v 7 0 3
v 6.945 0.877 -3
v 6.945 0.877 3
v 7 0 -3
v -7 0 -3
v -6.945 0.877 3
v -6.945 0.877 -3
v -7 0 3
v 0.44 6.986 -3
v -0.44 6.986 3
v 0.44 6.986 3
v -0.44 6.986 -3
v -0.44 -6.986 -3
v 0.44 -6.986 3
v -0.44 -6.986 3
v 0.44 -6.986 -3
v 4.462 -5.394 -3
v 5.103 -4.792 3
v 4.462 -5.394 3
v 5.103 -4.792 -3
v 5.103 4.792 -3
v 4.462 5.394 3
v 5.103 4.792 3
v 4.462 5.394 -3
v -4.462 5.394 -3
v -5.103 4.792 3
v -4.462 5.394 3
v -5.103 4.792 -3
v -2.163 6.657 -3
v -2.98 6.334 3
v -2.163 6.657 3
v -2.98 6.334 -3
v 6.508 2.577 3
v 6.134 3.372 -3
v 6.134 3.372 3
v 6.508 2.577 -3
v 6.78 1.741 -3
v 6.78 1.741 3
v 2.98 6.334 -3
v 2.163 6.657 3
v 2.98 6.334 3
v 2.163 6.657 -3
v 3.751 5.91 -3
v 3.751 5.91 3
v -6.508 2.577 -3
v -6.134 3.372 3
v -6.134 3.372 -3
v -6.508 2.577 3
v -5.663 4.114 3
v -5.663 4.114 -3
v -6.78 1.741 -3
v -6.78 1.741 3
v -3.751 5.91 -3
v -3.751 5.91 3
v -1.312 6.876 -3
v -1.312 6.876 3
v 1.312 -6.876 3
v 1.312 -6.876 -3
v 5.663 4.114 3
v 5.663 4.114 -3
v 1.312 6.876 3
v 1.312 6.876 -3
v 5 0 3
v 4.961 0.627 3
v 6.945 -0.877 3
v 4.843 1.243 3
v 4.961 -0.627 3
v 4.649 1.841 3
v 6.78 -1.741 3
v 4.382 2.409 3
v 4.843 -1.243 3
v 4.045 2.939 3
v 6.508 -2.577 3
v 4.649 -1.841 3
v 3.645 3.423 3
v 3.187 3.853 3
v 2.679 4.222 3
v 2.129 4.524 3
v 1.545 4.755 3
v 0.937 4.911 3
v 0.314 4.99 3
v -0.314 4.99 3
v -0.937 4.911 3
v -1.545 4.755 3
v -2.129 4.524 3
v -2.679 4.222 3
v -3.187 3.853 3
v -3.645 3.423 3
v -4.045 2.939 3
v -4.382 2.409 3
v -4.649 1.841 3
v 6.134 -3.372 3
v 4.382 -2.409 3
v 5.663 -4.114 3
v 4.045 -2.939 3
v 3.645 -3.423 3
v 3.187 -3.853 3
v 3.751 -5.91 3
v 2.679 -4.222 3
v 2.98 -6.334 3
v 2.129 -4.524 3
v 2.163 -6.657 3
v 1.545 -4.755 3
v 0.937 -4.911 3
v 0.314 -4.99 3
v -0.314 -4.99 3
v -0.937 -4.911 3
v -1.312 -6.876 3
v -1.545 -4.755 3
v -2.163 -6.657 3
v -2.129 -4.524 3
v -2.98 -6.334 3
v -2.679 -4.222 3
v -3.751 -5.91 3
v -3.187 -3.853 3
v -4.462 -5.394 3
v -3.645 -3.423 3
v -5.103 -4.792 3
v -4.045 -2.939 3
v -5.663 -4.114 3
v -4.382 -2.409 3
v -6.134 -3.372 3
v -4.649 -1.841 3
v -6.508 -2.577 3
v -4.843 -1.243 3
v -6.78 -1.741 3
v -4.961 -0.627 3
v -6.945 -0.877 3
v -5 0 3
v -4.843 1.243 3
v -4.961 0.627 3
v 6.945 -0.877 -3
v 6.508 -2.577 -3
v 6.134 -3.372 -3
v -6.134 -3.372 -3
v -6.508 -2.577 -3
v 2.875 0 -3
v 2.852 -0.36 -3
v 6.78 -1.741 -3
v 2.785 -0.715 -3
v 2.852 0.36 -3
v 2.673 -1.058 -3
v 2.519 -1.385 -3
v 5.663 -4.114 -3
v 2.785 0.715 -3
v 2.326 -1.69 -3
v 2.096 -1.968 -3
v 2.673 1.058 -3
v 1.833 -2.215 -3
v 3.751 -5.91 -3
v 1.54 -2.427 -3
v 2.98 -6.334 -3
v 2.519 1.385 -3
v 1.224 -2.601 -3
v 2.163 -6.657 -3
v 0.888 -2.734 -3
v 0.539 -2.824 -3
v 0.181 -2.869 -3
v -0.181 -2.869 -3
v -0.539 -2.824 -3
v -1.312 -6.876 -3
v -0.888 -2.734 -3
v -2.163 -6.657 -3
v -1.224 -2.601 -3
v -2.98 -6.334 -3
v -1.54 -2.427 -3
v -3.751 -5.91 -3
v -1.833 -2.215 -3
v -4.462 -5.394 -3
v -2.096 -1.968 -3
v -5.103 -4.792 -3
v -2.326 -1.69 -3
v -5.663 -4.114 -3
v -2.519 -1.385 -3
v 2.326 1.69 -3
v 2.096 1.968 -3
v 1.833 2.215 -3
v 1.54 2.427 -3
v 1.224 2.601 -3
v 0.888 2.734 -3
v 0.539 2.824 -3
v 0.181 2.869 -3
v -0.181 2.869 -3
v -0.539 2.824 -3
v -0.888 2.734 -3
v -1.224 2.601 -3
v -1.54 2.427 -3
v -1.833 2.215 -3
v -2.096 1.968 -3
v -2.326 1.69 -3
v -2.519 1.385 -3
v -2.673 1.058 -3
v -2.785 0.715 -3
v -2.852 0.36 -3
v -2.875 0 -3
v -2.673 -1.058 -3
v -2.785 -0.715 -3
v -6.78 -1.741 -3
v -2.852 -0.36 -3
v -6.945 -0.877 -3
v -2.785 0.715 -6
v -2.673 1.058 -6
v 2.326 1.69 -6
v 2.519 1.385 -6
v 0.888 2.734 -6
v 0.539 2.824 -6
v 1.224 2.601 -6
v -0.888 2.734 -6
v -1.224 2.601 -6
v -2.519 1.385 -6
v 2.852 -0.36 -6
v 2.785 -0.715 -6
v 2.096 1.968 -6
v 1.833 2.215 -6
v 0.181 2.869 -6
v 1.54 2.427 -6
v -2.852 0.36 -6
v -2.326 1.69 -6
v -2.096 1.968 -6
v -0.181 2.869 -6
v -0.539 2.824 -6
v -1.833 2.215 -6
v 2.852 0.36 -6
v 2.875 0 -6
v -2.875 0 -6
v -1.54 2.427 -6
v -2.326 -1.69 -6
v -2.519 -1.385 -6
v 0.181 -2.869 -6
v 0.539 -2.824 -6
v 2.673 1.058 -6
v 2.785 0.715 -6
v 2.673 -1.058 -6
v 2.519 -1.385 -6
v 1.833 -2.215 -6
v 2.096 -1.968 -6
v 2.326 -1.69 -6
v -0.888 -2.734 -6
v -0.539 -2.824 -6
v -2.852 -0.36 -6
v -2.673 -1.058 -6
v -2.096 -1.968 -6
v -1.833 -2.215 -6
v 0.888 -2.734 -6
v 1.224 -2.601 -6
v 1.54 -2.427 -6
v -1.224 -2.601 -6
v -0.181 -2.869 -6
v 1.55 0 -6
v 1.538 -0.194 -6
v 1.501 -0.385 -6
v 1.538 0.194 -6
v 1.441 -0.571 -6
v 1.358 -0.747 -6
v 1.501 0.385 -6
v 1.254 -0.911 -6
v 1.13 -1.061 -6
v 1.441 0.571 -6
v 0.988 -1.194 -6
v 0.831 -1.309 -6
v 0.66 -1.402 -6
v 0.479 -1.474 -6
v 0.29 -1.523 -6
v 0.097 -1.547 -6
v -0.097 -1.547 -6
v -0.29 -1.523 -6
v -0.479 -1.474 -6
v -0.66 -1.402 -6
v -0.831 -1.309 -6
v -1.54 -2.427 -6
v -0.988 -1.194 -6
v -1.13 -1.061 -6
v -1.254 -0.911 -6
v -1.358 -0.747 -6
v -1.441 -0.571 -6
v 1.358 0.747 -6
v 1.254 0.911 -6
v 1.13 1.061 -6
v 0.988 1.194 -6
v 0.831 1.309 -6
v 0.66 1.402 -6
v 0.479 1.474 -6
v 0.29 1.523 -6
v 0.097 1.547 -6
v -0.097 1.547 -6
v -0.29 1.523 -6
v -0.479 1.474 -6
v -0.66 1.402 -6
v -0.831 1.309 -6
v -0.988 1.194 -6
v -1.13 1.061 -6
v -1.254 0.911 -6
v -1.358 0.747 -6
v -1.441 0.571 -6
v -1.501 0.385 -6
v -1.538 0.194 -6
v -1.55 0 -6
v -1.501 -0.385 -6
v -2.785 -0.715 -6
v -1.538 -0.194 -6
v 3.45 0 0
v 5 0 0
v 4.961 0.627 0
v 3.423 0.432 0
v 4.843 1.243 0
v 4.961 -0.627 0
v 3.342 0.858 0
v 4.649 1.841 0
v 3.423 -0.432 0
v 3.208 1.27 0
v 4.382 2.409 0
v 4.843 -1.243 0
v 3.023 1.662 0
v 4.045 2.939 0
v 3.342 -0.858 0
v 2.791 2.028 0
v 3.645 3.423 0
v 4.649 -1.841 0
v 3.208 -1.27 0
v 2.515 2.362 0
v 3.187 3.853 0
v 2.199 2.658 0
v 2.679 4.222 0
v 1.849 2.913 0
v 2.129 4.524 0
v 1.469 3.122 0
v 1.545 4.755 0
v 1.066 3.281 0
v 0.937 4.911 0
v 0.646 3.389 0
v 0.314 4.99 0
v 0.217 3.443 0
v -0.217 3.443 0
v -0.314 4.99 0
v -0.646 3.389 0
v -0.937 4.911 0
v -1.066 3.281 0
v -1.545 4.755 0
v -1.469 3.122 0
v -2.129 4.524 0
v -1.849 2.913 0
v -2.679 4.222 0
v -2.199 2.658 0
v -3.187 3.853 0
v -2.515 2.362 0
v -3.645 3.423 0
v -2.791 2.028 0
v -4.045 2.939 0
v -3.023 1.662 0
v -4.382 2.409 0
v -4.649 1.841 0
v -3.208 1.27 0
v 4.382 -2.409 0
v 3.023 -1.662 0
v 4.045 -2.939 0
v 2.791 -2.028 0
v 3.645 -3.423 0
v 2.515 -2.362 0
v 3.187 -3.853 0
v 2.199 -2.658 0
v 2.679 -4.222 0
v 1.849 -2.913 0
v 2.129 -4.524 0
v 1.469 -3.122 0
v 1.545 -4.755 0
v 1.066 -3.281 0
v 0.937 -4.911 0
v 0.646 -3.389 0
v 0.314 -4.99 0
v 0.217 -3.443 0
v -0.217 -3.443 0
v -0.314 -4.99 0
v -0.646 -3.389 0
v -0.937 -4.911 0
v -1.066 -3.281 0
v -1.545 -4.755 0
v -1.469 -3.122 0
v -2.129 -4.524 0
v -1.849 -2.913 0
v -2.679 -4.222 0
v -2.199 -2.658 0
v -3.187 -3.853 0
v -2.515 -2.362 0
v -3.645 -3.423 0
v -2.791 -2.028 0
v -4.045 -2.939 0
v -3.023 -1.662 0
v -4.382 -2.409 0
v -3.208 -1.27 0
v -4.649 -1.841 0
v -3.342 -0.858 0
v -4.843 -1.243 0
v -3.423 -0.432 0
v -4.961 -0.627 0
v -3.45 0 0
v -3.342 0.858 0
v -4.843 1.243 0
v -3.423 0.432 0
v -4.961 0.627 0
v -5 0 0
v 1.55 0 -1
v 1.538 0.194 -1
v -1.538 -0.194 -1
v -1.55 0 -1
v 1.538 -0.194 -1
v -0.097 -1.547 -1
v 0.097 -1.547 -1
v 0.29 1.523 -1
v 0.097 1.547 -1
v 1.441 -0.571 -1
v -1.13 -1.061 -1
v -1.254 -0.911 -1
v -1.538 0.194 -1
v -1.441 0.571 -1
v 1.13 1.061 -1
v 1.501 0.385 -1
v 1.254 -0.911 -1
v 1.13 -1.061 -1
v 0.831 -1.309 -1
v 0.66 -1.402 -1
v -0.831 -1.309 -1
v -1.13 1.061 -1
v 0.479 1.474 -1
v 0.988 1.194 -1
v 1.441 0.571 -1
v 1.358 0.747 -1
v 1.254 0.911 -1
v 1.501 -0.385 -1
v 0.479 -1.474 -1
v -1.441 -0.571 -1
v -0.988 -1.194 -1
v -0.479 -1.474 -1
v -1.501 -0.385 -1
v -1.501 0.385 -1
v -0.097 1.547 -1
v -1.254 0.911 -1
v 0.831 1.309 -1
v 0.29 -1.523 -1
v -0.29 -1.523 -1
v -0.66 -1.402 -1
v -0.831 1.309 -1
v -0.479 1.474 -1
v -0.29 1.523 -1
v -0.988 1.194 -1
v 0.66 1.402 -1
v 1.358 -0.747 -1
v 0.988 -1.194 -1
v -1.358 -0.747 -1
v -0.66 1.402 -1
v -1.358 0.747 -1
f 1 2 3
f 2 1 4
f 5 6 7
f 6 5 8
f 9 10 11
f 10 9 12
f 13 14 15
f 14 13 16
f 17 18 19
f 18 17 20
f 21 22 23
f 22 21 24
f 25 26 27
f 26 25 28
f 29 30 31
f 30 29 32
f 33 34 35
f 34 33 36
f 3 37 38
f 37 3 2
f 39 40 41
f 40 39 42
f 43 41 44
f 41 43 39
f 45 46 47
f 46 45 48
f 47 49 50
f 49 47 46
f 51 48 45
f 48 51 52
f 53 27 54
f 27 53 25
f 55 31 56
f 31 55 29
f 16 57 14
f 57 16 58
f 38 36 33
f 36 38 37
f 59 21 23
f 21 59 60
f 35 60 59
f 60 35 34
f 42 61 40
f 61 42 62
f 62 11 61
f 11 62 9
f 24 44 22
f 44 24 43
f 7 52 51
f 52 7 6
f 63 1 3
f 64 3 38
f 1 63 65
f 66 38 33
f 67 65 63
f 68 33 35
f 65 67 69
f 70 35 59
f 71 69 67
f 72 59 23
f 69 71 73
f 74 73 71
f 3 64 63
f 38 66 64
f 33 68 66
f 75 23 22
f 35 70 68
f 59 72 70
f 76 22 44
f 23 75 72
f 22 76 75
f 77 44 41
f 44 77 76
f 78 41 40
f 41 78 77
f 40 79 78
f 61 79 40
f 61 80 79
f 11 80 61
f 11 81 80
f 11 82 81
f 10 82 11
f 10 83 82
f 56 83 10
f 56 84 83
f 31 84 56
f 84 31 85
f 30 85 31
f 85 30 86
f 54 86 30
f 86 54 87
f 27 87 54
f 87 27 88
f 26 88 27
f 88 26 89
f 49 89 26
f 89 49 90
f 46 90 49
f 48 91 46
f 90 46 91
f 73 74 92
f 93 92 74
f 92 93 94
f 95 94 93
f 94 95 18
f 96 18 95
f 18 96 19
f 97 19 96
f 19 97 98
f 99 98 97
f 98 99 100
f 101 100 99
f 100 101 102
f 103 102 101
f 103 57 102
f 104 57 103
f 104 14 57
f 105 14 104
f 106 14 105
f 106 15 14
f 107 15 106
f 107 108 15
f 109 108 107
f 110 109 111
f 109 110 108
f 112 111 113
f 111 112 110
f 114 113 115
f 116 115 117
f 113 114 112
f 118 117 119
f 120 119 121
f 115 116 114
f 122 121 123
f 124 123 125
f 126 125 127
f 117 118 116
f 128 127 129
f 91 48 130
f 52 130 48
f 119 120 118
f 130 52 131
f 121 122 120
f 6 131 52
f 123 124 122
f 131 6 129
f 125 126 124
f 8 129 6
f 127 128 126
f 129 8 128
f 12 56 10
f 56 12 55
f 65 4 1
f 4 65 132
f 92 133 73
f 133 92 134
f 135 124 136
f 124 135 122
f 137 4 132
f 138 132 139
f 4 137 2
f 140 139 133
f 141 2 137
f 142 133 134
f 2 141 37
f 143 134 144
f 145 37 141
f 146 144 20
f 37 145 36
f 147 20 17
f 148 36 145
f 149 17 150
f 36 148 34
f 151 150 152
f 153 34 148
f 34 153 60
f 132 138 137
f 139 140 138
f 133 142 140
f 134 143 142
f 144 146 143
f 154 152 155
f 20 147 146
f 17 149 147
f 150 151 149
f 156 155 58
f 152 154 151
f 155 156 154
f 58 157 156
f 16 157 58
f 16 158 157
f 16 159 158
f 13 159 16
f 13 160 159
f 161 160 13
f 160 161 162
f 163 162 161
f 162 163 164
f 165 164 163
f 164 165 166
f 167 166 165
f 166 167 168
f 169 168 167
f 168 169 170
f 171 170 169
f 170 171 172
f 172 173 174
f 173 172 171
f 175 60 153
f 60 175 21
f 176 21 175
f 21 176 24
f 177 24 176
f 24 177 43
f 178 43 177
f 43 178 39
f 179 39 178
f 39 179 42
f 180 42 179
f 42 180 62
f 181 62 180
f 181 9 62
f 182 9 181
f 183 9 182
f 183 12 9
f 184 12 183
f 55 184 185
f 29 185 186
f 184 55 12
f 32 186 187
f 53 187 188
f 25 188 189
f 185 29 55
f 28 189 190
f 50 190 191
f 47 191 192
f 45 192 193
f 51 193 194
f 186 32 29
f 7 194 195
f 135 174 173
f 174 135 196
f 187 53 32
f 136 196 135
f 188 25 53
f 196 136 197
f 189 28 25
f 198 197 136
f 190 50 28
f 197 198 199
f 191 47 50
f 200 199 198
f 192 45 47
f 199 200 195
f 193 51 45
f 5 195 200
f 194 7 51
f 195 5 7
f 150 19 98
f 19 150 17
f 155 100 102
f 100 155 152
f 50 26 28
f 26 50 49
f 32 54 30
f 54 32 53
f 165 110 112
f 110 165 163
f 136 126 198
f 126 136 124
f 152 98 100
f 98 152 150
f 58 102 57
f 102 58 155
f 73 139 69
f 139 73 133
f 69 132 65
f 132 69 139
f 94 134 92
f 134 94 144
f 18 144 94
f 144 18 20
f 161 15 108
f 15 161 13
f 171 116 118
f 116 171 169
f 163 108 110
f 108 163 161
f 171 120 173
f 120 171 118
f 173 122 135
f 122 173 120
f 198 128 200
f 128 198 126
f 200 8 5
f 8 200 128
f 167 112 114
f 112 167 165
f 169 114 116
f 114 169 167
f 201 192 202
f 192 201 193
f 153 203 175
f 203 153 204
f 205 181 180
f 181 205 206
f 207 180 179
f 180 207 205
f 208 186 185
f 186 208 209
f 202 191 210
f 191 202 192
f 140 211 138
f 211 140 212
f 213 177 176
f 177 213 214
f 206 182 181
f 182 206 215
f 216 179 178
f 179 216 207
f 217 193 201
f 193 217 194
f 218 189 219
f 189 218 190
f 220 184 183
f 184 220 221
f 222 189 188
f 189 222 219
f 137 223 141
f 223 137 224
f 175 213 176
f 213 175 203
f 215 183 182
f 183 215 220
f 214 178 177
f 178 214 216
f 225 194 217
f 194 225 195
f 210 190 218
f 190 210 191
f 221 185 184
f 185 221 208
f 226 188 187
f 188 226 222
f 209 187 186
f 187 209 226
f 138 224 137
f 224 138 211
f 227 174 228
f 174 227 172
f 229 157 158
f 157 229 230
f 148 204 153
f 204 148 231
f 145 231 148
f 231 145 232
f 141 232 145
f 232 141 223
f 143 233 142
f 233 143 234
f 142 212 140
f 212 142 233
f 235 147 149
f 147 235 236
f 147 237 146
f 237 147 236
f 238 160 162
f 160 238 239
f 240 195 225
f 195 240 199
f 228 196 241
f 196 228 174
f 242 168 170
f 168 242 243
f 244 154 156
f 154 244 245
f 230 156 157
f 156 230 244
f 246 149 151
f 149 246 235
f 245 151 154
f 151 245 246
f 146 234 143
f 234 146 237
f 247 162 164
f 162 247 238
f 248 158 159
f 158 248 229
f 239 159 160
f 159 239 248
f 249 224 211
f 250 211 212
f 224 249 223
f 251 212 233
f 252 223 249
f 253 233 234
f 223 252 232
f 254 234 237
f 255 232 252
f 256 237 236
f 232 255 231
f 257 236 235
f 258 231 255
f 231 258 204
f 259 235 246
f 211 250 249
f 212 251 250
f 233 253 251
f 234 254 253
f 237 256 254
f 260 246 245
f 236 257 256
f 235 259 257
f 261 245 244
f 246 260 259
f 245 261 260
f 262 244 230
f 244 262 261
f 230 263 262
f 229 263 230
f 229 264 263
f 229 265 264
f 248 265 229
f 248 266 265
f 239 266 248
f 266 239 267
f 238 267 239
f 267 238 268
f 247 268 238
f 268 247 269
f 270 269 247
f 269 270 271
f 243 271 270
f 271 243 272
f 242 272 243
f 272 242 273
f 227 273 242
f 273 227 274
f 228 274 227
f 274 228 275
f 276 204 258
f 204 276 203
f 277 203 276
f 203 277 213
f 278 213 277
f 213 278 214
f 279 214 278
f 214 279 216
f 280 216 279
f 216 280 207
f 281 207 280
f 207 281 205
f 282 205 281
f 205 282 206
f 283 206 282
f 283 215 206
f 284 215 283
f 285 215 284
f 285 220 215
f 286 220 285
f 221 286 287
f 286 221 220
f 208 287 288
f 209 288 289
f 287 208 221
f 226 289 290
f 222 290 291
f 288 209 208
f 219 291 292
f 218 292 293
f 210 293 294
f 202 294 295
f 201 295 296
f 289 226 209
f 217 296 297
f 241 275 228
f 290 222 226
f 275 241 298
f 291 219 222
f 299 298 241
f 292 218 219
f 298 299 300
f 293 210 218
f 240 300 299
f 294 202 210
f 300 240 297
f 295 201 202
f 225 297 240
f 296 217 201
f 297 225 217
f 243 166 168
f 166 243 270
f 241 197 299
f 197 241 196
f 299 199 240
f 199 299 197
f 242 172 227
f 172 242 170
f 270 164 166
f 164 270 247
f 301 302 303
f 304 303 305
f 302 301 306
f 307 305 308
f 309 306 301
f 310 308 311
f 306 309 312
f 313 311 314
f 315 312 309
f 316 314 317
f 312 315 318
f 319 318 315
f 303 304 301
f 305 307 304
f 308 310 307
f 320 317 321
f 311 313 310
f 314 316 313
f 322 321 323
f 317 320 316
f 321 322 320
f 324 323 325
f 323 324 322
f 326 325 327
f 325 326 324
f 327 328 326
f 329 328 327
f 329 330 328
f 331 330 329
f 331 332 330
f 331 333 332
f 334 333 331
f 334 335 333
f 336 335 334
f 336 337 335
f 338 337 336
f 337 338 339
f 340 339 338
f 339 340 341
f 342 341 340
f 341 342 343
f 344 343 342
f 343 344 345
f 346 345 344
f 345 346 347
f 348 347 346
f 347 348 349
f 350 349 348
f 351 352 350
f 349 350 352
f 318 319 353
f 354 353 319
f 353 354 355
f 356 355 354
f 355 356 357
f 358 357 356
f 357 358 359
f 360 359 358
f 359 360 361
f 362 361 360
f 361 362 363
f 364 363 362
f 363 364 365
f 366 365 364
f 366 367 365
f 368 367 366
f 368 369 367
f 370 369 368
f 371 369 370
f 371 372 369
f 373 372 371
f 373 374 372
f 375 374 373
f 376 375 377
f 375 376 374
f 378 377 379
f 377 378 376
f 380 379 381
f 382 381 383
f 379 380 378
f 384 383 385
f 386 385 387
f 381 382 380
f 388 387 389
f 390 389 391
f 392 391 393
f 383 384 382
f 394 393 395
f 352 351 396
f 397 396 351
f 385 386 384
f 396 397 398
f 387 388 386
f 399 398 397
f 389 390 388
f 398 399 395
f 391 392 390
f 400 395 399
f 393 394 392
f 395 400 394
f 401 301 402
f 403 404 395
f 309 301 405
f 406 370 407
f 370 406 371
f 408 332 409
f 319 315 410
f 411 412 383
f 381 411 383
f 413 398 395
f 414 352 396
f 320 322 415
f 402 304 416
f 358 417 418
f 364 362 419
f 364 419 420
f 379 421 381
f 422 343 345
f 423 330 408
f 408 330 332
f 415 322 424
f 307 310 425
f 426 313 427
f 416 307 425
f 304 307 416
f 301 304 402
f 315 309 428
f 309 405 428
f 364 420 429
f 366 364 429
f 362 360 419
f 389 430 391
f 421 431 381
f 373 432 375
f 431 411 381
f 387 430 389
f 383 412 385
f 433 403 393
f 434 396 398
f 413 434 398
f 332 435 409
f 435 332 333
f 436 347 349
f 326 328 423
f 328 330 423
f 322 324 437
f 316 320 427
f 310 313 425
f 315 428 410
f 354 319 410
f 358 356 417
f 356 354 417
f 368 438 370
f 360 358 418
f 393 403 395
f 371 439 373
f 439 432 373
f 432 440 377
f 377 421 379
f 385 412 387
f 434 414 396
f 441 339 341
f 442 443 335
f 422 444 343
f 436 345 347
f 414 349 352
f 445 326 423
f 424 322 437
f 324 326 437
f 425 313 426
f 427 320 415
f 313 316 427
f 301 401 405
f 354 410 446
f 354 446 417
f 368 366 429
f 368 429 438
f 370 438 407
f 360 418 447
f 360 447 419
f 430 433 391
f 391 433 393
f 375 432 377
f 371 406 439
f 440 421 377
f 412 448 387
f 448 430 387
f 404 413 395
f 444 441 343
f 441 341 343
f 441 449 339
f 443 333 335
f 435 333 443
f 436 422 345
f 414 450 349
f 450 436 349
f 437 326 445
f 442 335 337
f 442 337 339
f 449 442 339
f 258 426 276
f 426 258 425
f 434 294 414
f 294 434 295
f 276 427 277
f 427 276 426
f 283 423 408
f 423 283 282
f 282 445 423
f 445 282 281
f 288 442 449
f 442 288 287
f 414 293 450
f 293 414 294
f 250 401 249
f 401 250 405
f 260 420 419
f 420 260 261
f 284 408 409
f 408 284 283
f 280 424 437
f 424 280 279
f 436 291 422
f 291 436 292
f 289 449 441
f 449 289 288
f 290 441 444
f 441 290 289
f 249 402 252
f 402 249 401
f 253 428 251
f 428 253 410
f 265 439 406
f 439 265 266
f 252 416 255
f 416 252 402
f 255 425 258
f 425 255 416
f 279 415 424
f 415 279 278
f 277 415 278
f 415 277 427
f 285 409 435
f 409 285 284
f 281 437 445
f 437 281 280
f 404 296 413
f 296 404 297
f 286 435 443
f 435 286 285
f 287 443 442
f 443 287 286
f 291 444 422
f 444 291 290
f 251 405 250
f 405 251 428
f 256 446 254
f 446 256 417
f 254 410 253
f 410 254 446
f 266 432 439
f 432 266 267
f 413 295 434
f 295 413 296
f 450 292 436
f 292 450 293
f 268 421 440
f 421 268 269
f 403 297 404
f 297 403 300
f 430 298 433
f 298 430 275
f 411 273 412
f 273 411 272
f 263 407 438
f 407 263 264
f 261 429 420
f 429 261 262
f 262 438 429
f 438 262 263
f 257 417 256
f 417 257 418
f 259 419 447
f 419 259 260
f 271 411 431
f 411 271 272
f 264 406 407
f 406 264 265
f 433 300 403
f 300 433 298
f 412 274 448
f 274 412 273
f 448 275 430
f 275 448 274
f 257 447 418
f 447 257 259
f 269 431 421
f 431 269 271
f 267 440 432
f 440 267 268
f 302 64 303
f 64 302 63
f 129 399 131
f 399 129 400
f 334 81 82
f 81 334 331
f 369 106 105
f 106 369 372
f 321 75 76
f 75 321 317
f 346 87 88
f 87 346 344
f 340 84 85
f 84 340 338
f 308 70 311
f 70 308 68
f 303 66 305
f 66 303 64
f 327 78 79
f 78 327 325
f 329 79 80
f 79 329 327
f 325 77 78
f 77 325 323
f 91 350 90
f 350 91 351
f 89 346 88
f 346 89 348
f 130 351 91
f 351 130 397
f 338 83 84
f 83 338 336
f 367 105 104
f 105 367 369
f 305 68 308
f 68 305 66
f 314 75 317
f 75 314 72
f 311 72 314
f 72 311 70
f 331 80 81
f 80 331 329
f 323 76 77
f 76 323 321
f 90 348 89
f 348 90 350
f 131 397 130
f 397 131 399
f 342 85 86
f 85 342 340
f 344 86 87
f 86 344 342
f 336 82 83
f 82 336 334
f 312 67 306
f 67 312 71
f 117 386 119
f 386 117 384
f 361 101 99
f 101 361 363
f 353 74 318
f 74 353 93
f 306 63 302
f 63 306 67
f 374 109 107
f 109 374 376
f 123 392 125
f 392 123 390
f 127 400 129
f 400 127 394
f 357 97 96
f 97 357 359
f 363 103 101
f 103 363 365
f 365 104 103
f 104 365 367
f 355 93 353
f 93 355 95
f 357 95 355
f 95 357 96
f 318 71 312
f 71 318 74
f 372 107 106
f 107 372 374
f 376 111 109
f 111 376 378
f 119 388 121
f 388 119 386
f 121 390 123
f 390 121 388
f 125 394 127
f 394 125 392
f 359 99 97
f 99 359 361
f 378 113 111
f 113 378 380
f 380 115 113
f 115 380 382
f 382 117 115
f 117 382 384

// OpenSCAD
$fn = 50;

difference() {
	union() {
		translate(v = [0, 0, -3.0]) {
			cylinder(h = 6, r = 7.0);
		}
		#translate(v = [0, 0, -6.0]) {
			cylinder(h = 6, r = 2.875);
		}
	}
	union() {
		translate(v = [0, 0, 0]) {
			rotate(a = [0, 0, 0]) {
				difference() {
					union() {
						translate(v = [0, 0, -6.0]) {
							cylinder(h = 6, r = 1.25);
						}
						translate(v = [0, 0, -1.0]) {
							cylinder(h = 1.0, r1 = 1.55, r2 = 3.45);
						}
						translate(v = [0, 0, -6.0]) {
							cylinder(h = 6, r = 1.55);
						}
						translate(v = [0, 0, -6.0]) {
							cylinder(h = 6, r = 1.25);
						}
					}
					union();
				}
			}
		}
		#cylinder(h = 3, r = 5.0);
	}
}
